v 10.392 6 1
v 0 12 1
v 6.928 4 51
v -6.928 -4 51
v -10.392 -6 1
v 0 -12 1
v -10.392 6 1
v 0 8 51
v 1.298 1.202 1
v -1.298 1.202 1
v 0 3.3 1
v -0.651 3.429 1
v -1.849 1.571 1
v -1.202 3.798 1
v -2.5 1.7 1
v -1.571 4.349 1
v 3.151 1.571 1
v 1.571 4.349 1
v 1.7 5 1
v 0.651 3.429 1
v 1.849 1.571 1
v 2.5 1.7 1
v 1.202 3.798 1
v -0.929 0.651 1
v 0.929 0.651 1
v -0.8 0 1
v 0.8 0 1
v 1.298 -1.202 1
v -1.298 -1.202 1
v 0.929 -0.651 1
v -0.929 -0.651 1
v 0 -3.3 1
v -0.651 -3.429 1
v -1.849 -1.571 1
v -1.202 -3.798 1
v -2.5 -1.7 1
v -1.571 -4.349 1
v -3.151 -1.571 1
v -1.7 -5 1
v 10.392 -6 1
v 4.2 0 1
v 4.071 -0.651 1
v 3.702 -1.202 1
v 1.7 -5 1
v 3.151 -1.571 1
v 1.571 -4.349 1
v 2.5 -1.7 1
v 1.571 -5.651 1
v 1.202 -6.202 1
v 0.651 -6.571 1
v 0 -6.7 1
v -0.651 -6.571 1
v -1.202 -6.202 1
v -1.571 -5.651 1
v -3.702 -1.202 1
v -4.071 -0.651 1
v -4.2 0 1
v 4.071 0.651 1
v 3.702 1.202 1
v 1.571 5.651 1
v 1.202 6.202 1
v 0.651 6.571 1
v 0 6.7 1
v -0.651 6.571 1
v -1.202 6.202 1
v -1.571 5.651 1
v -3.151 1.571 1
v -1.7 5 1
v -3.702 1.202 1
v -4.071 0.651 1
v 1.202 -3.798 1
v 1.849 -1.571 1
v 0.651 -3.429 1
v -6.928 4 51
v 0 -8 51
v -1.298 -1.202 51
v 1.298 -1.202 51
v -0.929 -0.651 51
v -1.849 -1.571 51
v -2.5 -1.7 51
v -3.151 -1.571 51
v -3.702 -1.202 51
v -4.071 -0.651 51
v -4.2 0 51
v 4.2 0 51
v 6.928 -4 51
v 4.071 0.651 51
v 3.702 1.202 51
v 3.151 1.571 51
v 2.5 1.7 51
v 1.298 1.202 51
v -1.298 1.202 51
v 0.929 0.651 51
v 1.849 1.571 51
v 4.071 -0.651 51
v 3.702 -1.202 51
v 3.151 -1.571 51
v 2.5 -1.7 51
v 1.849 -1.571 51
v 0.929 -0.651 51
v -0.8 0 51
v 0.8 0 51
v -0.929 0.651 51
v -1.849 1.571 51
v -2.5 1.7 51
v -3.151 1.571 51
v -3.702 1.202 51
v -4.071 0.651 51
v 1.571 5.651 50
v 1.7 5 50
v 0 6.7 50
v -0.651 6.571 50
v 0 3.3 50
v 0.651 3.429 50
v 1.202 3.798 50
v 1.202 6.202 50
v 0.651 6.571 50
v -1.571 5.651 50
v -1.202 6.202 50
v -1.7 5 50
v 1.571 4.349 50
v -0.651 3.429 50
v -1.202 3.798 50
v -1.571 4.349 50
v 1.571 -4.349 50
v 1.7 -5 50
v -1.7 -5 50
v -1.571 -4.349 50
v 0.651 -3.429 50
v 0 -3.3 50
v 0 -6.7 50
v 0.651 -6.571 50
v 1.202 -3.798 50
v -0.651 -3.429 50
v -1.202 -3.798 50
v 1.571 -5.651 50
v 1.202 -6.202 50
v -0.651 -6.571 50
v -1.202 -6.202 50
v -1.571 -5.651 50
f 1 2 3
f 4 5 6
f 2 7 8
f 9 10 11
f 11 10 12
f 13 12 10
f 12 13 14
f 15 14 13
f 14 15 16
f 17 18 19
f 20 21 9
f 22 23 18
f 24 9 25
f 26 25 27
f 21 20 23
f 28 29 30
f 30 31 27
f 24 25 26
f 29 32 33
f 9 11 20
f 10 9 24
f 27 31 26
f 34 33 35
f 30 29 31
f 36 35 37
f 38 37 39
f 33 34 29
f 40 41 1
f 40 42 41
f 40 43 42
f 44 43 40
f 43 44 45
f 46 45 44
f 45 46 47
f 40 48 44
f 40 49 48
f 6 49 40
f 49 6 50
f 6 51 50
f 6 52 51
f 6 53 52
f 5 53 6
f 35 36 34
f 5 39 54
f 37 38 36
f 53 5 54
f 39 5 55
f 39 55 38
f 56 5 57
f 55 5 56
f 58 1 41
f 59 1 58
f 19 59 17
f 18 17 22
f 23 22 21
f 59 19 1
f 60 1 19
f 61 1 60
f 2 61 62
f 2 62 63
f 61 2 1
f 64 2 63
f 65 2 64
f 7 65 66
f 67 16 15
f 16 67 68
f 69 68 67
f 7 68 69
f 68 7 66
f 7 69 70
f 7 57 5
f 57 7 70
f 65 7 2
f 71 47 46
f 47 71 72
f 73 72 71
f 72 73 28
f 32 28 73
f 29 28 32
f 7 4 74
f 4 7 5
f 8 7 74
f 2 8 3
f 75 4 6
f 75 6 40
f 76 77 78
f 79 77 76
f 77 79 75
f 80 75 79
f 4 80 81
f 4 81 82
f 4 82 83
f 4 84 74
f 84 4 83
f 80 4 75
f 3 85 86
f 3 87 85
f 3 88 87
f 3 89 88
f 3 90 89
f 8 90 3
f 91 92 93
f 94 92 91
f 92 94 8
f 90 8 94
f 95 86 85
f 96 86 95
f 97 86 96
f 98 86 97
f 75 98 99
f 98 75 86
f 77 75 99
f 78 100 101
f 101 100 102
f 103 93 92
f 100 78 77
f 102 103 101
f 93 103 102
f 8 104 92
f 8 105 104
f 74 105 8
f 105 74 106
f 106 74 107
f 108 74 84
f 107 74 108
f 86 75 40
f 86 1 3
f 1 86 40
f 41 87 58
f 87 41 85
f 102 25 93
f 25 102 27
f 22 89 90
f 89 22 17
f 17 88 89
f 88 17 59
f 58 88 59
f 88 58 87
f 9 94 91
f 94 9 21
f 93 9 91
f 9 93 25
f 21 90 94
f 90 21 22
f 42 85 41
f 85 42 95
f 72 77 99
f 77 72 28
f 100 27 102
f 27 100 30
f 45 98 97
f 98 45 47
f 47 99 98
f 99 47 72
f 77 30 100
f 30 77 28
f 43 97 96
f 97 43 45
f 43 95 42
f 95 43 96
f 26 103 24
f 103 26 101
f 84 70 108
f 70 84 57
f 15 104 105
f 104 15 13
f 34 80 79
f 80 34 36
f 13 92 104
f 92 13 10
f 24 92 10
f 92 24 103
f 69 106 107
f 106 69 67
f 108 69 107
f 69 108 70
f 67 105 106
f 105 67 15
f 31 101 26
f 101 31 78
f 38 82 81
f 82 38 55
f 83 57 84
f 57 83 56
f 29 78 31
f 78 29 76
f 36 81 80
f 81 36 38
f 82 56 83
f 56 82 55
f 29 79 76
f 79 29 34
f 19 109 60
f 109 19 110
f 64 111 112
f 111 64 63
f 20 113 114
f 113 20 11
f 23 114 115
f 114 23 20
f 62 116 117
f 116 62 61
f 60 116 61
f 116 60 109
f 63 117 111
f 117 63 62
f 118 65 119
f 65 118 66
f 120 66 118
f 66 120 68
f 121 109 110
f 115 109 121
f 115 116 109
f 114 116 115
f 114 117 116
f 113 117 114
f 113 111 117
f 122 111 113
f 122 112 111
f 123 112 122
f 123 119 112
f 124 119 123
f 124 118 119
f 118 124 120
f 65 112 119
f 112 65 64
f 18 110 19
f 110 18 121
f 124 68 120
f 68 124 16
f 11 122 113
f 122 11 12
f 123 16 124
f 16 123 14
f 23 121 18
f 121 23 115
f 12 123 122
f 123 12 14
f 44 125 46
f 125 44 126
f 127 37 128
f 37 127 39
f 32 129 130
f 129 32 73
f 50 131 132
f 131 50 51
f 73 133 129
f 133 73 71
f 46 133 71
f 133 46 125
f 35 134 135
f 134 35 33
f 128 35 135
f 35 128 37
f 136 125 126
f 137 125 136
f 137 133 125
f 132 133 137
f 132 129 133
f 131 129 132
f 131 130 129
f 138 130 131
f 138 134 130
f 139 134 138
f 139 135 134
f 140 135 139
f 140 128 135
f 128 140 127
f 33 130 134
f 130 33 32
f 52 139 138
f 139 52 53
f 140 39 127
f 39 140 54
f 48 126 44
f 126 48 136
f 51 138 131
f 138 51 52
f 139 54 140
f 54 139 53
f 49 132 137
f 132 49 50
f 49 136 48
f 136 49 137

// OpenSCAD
union() // SharpSCAD generated scene: handle
{
  difference()
  {
    rotate( a= [ 0, 0, 30 ] )
      translate( v= [ 0, 0, 1 ] )
        cylinder( r1= 12, r2= 8, $fn= 6, h= 50 );
    translate( v= [ 2.5, 0, 0 ] )
      cylinder( r= 1.7, $fn= 16, h= 120 );
    translate( v= [ -2.5, 0, 0 ] )
      cylinder( r= 1.7, $fn= 16, h= 120 );
    translate( v= [ 0, 5, 0 ] )
      cylinder( r= 1.7, $fn= 16, h= 50 );
    translate( v= [ 0, -5, 0 ] )
      cylinder( r= 1.7, $fn= 16, h= 50 );
  }
}
